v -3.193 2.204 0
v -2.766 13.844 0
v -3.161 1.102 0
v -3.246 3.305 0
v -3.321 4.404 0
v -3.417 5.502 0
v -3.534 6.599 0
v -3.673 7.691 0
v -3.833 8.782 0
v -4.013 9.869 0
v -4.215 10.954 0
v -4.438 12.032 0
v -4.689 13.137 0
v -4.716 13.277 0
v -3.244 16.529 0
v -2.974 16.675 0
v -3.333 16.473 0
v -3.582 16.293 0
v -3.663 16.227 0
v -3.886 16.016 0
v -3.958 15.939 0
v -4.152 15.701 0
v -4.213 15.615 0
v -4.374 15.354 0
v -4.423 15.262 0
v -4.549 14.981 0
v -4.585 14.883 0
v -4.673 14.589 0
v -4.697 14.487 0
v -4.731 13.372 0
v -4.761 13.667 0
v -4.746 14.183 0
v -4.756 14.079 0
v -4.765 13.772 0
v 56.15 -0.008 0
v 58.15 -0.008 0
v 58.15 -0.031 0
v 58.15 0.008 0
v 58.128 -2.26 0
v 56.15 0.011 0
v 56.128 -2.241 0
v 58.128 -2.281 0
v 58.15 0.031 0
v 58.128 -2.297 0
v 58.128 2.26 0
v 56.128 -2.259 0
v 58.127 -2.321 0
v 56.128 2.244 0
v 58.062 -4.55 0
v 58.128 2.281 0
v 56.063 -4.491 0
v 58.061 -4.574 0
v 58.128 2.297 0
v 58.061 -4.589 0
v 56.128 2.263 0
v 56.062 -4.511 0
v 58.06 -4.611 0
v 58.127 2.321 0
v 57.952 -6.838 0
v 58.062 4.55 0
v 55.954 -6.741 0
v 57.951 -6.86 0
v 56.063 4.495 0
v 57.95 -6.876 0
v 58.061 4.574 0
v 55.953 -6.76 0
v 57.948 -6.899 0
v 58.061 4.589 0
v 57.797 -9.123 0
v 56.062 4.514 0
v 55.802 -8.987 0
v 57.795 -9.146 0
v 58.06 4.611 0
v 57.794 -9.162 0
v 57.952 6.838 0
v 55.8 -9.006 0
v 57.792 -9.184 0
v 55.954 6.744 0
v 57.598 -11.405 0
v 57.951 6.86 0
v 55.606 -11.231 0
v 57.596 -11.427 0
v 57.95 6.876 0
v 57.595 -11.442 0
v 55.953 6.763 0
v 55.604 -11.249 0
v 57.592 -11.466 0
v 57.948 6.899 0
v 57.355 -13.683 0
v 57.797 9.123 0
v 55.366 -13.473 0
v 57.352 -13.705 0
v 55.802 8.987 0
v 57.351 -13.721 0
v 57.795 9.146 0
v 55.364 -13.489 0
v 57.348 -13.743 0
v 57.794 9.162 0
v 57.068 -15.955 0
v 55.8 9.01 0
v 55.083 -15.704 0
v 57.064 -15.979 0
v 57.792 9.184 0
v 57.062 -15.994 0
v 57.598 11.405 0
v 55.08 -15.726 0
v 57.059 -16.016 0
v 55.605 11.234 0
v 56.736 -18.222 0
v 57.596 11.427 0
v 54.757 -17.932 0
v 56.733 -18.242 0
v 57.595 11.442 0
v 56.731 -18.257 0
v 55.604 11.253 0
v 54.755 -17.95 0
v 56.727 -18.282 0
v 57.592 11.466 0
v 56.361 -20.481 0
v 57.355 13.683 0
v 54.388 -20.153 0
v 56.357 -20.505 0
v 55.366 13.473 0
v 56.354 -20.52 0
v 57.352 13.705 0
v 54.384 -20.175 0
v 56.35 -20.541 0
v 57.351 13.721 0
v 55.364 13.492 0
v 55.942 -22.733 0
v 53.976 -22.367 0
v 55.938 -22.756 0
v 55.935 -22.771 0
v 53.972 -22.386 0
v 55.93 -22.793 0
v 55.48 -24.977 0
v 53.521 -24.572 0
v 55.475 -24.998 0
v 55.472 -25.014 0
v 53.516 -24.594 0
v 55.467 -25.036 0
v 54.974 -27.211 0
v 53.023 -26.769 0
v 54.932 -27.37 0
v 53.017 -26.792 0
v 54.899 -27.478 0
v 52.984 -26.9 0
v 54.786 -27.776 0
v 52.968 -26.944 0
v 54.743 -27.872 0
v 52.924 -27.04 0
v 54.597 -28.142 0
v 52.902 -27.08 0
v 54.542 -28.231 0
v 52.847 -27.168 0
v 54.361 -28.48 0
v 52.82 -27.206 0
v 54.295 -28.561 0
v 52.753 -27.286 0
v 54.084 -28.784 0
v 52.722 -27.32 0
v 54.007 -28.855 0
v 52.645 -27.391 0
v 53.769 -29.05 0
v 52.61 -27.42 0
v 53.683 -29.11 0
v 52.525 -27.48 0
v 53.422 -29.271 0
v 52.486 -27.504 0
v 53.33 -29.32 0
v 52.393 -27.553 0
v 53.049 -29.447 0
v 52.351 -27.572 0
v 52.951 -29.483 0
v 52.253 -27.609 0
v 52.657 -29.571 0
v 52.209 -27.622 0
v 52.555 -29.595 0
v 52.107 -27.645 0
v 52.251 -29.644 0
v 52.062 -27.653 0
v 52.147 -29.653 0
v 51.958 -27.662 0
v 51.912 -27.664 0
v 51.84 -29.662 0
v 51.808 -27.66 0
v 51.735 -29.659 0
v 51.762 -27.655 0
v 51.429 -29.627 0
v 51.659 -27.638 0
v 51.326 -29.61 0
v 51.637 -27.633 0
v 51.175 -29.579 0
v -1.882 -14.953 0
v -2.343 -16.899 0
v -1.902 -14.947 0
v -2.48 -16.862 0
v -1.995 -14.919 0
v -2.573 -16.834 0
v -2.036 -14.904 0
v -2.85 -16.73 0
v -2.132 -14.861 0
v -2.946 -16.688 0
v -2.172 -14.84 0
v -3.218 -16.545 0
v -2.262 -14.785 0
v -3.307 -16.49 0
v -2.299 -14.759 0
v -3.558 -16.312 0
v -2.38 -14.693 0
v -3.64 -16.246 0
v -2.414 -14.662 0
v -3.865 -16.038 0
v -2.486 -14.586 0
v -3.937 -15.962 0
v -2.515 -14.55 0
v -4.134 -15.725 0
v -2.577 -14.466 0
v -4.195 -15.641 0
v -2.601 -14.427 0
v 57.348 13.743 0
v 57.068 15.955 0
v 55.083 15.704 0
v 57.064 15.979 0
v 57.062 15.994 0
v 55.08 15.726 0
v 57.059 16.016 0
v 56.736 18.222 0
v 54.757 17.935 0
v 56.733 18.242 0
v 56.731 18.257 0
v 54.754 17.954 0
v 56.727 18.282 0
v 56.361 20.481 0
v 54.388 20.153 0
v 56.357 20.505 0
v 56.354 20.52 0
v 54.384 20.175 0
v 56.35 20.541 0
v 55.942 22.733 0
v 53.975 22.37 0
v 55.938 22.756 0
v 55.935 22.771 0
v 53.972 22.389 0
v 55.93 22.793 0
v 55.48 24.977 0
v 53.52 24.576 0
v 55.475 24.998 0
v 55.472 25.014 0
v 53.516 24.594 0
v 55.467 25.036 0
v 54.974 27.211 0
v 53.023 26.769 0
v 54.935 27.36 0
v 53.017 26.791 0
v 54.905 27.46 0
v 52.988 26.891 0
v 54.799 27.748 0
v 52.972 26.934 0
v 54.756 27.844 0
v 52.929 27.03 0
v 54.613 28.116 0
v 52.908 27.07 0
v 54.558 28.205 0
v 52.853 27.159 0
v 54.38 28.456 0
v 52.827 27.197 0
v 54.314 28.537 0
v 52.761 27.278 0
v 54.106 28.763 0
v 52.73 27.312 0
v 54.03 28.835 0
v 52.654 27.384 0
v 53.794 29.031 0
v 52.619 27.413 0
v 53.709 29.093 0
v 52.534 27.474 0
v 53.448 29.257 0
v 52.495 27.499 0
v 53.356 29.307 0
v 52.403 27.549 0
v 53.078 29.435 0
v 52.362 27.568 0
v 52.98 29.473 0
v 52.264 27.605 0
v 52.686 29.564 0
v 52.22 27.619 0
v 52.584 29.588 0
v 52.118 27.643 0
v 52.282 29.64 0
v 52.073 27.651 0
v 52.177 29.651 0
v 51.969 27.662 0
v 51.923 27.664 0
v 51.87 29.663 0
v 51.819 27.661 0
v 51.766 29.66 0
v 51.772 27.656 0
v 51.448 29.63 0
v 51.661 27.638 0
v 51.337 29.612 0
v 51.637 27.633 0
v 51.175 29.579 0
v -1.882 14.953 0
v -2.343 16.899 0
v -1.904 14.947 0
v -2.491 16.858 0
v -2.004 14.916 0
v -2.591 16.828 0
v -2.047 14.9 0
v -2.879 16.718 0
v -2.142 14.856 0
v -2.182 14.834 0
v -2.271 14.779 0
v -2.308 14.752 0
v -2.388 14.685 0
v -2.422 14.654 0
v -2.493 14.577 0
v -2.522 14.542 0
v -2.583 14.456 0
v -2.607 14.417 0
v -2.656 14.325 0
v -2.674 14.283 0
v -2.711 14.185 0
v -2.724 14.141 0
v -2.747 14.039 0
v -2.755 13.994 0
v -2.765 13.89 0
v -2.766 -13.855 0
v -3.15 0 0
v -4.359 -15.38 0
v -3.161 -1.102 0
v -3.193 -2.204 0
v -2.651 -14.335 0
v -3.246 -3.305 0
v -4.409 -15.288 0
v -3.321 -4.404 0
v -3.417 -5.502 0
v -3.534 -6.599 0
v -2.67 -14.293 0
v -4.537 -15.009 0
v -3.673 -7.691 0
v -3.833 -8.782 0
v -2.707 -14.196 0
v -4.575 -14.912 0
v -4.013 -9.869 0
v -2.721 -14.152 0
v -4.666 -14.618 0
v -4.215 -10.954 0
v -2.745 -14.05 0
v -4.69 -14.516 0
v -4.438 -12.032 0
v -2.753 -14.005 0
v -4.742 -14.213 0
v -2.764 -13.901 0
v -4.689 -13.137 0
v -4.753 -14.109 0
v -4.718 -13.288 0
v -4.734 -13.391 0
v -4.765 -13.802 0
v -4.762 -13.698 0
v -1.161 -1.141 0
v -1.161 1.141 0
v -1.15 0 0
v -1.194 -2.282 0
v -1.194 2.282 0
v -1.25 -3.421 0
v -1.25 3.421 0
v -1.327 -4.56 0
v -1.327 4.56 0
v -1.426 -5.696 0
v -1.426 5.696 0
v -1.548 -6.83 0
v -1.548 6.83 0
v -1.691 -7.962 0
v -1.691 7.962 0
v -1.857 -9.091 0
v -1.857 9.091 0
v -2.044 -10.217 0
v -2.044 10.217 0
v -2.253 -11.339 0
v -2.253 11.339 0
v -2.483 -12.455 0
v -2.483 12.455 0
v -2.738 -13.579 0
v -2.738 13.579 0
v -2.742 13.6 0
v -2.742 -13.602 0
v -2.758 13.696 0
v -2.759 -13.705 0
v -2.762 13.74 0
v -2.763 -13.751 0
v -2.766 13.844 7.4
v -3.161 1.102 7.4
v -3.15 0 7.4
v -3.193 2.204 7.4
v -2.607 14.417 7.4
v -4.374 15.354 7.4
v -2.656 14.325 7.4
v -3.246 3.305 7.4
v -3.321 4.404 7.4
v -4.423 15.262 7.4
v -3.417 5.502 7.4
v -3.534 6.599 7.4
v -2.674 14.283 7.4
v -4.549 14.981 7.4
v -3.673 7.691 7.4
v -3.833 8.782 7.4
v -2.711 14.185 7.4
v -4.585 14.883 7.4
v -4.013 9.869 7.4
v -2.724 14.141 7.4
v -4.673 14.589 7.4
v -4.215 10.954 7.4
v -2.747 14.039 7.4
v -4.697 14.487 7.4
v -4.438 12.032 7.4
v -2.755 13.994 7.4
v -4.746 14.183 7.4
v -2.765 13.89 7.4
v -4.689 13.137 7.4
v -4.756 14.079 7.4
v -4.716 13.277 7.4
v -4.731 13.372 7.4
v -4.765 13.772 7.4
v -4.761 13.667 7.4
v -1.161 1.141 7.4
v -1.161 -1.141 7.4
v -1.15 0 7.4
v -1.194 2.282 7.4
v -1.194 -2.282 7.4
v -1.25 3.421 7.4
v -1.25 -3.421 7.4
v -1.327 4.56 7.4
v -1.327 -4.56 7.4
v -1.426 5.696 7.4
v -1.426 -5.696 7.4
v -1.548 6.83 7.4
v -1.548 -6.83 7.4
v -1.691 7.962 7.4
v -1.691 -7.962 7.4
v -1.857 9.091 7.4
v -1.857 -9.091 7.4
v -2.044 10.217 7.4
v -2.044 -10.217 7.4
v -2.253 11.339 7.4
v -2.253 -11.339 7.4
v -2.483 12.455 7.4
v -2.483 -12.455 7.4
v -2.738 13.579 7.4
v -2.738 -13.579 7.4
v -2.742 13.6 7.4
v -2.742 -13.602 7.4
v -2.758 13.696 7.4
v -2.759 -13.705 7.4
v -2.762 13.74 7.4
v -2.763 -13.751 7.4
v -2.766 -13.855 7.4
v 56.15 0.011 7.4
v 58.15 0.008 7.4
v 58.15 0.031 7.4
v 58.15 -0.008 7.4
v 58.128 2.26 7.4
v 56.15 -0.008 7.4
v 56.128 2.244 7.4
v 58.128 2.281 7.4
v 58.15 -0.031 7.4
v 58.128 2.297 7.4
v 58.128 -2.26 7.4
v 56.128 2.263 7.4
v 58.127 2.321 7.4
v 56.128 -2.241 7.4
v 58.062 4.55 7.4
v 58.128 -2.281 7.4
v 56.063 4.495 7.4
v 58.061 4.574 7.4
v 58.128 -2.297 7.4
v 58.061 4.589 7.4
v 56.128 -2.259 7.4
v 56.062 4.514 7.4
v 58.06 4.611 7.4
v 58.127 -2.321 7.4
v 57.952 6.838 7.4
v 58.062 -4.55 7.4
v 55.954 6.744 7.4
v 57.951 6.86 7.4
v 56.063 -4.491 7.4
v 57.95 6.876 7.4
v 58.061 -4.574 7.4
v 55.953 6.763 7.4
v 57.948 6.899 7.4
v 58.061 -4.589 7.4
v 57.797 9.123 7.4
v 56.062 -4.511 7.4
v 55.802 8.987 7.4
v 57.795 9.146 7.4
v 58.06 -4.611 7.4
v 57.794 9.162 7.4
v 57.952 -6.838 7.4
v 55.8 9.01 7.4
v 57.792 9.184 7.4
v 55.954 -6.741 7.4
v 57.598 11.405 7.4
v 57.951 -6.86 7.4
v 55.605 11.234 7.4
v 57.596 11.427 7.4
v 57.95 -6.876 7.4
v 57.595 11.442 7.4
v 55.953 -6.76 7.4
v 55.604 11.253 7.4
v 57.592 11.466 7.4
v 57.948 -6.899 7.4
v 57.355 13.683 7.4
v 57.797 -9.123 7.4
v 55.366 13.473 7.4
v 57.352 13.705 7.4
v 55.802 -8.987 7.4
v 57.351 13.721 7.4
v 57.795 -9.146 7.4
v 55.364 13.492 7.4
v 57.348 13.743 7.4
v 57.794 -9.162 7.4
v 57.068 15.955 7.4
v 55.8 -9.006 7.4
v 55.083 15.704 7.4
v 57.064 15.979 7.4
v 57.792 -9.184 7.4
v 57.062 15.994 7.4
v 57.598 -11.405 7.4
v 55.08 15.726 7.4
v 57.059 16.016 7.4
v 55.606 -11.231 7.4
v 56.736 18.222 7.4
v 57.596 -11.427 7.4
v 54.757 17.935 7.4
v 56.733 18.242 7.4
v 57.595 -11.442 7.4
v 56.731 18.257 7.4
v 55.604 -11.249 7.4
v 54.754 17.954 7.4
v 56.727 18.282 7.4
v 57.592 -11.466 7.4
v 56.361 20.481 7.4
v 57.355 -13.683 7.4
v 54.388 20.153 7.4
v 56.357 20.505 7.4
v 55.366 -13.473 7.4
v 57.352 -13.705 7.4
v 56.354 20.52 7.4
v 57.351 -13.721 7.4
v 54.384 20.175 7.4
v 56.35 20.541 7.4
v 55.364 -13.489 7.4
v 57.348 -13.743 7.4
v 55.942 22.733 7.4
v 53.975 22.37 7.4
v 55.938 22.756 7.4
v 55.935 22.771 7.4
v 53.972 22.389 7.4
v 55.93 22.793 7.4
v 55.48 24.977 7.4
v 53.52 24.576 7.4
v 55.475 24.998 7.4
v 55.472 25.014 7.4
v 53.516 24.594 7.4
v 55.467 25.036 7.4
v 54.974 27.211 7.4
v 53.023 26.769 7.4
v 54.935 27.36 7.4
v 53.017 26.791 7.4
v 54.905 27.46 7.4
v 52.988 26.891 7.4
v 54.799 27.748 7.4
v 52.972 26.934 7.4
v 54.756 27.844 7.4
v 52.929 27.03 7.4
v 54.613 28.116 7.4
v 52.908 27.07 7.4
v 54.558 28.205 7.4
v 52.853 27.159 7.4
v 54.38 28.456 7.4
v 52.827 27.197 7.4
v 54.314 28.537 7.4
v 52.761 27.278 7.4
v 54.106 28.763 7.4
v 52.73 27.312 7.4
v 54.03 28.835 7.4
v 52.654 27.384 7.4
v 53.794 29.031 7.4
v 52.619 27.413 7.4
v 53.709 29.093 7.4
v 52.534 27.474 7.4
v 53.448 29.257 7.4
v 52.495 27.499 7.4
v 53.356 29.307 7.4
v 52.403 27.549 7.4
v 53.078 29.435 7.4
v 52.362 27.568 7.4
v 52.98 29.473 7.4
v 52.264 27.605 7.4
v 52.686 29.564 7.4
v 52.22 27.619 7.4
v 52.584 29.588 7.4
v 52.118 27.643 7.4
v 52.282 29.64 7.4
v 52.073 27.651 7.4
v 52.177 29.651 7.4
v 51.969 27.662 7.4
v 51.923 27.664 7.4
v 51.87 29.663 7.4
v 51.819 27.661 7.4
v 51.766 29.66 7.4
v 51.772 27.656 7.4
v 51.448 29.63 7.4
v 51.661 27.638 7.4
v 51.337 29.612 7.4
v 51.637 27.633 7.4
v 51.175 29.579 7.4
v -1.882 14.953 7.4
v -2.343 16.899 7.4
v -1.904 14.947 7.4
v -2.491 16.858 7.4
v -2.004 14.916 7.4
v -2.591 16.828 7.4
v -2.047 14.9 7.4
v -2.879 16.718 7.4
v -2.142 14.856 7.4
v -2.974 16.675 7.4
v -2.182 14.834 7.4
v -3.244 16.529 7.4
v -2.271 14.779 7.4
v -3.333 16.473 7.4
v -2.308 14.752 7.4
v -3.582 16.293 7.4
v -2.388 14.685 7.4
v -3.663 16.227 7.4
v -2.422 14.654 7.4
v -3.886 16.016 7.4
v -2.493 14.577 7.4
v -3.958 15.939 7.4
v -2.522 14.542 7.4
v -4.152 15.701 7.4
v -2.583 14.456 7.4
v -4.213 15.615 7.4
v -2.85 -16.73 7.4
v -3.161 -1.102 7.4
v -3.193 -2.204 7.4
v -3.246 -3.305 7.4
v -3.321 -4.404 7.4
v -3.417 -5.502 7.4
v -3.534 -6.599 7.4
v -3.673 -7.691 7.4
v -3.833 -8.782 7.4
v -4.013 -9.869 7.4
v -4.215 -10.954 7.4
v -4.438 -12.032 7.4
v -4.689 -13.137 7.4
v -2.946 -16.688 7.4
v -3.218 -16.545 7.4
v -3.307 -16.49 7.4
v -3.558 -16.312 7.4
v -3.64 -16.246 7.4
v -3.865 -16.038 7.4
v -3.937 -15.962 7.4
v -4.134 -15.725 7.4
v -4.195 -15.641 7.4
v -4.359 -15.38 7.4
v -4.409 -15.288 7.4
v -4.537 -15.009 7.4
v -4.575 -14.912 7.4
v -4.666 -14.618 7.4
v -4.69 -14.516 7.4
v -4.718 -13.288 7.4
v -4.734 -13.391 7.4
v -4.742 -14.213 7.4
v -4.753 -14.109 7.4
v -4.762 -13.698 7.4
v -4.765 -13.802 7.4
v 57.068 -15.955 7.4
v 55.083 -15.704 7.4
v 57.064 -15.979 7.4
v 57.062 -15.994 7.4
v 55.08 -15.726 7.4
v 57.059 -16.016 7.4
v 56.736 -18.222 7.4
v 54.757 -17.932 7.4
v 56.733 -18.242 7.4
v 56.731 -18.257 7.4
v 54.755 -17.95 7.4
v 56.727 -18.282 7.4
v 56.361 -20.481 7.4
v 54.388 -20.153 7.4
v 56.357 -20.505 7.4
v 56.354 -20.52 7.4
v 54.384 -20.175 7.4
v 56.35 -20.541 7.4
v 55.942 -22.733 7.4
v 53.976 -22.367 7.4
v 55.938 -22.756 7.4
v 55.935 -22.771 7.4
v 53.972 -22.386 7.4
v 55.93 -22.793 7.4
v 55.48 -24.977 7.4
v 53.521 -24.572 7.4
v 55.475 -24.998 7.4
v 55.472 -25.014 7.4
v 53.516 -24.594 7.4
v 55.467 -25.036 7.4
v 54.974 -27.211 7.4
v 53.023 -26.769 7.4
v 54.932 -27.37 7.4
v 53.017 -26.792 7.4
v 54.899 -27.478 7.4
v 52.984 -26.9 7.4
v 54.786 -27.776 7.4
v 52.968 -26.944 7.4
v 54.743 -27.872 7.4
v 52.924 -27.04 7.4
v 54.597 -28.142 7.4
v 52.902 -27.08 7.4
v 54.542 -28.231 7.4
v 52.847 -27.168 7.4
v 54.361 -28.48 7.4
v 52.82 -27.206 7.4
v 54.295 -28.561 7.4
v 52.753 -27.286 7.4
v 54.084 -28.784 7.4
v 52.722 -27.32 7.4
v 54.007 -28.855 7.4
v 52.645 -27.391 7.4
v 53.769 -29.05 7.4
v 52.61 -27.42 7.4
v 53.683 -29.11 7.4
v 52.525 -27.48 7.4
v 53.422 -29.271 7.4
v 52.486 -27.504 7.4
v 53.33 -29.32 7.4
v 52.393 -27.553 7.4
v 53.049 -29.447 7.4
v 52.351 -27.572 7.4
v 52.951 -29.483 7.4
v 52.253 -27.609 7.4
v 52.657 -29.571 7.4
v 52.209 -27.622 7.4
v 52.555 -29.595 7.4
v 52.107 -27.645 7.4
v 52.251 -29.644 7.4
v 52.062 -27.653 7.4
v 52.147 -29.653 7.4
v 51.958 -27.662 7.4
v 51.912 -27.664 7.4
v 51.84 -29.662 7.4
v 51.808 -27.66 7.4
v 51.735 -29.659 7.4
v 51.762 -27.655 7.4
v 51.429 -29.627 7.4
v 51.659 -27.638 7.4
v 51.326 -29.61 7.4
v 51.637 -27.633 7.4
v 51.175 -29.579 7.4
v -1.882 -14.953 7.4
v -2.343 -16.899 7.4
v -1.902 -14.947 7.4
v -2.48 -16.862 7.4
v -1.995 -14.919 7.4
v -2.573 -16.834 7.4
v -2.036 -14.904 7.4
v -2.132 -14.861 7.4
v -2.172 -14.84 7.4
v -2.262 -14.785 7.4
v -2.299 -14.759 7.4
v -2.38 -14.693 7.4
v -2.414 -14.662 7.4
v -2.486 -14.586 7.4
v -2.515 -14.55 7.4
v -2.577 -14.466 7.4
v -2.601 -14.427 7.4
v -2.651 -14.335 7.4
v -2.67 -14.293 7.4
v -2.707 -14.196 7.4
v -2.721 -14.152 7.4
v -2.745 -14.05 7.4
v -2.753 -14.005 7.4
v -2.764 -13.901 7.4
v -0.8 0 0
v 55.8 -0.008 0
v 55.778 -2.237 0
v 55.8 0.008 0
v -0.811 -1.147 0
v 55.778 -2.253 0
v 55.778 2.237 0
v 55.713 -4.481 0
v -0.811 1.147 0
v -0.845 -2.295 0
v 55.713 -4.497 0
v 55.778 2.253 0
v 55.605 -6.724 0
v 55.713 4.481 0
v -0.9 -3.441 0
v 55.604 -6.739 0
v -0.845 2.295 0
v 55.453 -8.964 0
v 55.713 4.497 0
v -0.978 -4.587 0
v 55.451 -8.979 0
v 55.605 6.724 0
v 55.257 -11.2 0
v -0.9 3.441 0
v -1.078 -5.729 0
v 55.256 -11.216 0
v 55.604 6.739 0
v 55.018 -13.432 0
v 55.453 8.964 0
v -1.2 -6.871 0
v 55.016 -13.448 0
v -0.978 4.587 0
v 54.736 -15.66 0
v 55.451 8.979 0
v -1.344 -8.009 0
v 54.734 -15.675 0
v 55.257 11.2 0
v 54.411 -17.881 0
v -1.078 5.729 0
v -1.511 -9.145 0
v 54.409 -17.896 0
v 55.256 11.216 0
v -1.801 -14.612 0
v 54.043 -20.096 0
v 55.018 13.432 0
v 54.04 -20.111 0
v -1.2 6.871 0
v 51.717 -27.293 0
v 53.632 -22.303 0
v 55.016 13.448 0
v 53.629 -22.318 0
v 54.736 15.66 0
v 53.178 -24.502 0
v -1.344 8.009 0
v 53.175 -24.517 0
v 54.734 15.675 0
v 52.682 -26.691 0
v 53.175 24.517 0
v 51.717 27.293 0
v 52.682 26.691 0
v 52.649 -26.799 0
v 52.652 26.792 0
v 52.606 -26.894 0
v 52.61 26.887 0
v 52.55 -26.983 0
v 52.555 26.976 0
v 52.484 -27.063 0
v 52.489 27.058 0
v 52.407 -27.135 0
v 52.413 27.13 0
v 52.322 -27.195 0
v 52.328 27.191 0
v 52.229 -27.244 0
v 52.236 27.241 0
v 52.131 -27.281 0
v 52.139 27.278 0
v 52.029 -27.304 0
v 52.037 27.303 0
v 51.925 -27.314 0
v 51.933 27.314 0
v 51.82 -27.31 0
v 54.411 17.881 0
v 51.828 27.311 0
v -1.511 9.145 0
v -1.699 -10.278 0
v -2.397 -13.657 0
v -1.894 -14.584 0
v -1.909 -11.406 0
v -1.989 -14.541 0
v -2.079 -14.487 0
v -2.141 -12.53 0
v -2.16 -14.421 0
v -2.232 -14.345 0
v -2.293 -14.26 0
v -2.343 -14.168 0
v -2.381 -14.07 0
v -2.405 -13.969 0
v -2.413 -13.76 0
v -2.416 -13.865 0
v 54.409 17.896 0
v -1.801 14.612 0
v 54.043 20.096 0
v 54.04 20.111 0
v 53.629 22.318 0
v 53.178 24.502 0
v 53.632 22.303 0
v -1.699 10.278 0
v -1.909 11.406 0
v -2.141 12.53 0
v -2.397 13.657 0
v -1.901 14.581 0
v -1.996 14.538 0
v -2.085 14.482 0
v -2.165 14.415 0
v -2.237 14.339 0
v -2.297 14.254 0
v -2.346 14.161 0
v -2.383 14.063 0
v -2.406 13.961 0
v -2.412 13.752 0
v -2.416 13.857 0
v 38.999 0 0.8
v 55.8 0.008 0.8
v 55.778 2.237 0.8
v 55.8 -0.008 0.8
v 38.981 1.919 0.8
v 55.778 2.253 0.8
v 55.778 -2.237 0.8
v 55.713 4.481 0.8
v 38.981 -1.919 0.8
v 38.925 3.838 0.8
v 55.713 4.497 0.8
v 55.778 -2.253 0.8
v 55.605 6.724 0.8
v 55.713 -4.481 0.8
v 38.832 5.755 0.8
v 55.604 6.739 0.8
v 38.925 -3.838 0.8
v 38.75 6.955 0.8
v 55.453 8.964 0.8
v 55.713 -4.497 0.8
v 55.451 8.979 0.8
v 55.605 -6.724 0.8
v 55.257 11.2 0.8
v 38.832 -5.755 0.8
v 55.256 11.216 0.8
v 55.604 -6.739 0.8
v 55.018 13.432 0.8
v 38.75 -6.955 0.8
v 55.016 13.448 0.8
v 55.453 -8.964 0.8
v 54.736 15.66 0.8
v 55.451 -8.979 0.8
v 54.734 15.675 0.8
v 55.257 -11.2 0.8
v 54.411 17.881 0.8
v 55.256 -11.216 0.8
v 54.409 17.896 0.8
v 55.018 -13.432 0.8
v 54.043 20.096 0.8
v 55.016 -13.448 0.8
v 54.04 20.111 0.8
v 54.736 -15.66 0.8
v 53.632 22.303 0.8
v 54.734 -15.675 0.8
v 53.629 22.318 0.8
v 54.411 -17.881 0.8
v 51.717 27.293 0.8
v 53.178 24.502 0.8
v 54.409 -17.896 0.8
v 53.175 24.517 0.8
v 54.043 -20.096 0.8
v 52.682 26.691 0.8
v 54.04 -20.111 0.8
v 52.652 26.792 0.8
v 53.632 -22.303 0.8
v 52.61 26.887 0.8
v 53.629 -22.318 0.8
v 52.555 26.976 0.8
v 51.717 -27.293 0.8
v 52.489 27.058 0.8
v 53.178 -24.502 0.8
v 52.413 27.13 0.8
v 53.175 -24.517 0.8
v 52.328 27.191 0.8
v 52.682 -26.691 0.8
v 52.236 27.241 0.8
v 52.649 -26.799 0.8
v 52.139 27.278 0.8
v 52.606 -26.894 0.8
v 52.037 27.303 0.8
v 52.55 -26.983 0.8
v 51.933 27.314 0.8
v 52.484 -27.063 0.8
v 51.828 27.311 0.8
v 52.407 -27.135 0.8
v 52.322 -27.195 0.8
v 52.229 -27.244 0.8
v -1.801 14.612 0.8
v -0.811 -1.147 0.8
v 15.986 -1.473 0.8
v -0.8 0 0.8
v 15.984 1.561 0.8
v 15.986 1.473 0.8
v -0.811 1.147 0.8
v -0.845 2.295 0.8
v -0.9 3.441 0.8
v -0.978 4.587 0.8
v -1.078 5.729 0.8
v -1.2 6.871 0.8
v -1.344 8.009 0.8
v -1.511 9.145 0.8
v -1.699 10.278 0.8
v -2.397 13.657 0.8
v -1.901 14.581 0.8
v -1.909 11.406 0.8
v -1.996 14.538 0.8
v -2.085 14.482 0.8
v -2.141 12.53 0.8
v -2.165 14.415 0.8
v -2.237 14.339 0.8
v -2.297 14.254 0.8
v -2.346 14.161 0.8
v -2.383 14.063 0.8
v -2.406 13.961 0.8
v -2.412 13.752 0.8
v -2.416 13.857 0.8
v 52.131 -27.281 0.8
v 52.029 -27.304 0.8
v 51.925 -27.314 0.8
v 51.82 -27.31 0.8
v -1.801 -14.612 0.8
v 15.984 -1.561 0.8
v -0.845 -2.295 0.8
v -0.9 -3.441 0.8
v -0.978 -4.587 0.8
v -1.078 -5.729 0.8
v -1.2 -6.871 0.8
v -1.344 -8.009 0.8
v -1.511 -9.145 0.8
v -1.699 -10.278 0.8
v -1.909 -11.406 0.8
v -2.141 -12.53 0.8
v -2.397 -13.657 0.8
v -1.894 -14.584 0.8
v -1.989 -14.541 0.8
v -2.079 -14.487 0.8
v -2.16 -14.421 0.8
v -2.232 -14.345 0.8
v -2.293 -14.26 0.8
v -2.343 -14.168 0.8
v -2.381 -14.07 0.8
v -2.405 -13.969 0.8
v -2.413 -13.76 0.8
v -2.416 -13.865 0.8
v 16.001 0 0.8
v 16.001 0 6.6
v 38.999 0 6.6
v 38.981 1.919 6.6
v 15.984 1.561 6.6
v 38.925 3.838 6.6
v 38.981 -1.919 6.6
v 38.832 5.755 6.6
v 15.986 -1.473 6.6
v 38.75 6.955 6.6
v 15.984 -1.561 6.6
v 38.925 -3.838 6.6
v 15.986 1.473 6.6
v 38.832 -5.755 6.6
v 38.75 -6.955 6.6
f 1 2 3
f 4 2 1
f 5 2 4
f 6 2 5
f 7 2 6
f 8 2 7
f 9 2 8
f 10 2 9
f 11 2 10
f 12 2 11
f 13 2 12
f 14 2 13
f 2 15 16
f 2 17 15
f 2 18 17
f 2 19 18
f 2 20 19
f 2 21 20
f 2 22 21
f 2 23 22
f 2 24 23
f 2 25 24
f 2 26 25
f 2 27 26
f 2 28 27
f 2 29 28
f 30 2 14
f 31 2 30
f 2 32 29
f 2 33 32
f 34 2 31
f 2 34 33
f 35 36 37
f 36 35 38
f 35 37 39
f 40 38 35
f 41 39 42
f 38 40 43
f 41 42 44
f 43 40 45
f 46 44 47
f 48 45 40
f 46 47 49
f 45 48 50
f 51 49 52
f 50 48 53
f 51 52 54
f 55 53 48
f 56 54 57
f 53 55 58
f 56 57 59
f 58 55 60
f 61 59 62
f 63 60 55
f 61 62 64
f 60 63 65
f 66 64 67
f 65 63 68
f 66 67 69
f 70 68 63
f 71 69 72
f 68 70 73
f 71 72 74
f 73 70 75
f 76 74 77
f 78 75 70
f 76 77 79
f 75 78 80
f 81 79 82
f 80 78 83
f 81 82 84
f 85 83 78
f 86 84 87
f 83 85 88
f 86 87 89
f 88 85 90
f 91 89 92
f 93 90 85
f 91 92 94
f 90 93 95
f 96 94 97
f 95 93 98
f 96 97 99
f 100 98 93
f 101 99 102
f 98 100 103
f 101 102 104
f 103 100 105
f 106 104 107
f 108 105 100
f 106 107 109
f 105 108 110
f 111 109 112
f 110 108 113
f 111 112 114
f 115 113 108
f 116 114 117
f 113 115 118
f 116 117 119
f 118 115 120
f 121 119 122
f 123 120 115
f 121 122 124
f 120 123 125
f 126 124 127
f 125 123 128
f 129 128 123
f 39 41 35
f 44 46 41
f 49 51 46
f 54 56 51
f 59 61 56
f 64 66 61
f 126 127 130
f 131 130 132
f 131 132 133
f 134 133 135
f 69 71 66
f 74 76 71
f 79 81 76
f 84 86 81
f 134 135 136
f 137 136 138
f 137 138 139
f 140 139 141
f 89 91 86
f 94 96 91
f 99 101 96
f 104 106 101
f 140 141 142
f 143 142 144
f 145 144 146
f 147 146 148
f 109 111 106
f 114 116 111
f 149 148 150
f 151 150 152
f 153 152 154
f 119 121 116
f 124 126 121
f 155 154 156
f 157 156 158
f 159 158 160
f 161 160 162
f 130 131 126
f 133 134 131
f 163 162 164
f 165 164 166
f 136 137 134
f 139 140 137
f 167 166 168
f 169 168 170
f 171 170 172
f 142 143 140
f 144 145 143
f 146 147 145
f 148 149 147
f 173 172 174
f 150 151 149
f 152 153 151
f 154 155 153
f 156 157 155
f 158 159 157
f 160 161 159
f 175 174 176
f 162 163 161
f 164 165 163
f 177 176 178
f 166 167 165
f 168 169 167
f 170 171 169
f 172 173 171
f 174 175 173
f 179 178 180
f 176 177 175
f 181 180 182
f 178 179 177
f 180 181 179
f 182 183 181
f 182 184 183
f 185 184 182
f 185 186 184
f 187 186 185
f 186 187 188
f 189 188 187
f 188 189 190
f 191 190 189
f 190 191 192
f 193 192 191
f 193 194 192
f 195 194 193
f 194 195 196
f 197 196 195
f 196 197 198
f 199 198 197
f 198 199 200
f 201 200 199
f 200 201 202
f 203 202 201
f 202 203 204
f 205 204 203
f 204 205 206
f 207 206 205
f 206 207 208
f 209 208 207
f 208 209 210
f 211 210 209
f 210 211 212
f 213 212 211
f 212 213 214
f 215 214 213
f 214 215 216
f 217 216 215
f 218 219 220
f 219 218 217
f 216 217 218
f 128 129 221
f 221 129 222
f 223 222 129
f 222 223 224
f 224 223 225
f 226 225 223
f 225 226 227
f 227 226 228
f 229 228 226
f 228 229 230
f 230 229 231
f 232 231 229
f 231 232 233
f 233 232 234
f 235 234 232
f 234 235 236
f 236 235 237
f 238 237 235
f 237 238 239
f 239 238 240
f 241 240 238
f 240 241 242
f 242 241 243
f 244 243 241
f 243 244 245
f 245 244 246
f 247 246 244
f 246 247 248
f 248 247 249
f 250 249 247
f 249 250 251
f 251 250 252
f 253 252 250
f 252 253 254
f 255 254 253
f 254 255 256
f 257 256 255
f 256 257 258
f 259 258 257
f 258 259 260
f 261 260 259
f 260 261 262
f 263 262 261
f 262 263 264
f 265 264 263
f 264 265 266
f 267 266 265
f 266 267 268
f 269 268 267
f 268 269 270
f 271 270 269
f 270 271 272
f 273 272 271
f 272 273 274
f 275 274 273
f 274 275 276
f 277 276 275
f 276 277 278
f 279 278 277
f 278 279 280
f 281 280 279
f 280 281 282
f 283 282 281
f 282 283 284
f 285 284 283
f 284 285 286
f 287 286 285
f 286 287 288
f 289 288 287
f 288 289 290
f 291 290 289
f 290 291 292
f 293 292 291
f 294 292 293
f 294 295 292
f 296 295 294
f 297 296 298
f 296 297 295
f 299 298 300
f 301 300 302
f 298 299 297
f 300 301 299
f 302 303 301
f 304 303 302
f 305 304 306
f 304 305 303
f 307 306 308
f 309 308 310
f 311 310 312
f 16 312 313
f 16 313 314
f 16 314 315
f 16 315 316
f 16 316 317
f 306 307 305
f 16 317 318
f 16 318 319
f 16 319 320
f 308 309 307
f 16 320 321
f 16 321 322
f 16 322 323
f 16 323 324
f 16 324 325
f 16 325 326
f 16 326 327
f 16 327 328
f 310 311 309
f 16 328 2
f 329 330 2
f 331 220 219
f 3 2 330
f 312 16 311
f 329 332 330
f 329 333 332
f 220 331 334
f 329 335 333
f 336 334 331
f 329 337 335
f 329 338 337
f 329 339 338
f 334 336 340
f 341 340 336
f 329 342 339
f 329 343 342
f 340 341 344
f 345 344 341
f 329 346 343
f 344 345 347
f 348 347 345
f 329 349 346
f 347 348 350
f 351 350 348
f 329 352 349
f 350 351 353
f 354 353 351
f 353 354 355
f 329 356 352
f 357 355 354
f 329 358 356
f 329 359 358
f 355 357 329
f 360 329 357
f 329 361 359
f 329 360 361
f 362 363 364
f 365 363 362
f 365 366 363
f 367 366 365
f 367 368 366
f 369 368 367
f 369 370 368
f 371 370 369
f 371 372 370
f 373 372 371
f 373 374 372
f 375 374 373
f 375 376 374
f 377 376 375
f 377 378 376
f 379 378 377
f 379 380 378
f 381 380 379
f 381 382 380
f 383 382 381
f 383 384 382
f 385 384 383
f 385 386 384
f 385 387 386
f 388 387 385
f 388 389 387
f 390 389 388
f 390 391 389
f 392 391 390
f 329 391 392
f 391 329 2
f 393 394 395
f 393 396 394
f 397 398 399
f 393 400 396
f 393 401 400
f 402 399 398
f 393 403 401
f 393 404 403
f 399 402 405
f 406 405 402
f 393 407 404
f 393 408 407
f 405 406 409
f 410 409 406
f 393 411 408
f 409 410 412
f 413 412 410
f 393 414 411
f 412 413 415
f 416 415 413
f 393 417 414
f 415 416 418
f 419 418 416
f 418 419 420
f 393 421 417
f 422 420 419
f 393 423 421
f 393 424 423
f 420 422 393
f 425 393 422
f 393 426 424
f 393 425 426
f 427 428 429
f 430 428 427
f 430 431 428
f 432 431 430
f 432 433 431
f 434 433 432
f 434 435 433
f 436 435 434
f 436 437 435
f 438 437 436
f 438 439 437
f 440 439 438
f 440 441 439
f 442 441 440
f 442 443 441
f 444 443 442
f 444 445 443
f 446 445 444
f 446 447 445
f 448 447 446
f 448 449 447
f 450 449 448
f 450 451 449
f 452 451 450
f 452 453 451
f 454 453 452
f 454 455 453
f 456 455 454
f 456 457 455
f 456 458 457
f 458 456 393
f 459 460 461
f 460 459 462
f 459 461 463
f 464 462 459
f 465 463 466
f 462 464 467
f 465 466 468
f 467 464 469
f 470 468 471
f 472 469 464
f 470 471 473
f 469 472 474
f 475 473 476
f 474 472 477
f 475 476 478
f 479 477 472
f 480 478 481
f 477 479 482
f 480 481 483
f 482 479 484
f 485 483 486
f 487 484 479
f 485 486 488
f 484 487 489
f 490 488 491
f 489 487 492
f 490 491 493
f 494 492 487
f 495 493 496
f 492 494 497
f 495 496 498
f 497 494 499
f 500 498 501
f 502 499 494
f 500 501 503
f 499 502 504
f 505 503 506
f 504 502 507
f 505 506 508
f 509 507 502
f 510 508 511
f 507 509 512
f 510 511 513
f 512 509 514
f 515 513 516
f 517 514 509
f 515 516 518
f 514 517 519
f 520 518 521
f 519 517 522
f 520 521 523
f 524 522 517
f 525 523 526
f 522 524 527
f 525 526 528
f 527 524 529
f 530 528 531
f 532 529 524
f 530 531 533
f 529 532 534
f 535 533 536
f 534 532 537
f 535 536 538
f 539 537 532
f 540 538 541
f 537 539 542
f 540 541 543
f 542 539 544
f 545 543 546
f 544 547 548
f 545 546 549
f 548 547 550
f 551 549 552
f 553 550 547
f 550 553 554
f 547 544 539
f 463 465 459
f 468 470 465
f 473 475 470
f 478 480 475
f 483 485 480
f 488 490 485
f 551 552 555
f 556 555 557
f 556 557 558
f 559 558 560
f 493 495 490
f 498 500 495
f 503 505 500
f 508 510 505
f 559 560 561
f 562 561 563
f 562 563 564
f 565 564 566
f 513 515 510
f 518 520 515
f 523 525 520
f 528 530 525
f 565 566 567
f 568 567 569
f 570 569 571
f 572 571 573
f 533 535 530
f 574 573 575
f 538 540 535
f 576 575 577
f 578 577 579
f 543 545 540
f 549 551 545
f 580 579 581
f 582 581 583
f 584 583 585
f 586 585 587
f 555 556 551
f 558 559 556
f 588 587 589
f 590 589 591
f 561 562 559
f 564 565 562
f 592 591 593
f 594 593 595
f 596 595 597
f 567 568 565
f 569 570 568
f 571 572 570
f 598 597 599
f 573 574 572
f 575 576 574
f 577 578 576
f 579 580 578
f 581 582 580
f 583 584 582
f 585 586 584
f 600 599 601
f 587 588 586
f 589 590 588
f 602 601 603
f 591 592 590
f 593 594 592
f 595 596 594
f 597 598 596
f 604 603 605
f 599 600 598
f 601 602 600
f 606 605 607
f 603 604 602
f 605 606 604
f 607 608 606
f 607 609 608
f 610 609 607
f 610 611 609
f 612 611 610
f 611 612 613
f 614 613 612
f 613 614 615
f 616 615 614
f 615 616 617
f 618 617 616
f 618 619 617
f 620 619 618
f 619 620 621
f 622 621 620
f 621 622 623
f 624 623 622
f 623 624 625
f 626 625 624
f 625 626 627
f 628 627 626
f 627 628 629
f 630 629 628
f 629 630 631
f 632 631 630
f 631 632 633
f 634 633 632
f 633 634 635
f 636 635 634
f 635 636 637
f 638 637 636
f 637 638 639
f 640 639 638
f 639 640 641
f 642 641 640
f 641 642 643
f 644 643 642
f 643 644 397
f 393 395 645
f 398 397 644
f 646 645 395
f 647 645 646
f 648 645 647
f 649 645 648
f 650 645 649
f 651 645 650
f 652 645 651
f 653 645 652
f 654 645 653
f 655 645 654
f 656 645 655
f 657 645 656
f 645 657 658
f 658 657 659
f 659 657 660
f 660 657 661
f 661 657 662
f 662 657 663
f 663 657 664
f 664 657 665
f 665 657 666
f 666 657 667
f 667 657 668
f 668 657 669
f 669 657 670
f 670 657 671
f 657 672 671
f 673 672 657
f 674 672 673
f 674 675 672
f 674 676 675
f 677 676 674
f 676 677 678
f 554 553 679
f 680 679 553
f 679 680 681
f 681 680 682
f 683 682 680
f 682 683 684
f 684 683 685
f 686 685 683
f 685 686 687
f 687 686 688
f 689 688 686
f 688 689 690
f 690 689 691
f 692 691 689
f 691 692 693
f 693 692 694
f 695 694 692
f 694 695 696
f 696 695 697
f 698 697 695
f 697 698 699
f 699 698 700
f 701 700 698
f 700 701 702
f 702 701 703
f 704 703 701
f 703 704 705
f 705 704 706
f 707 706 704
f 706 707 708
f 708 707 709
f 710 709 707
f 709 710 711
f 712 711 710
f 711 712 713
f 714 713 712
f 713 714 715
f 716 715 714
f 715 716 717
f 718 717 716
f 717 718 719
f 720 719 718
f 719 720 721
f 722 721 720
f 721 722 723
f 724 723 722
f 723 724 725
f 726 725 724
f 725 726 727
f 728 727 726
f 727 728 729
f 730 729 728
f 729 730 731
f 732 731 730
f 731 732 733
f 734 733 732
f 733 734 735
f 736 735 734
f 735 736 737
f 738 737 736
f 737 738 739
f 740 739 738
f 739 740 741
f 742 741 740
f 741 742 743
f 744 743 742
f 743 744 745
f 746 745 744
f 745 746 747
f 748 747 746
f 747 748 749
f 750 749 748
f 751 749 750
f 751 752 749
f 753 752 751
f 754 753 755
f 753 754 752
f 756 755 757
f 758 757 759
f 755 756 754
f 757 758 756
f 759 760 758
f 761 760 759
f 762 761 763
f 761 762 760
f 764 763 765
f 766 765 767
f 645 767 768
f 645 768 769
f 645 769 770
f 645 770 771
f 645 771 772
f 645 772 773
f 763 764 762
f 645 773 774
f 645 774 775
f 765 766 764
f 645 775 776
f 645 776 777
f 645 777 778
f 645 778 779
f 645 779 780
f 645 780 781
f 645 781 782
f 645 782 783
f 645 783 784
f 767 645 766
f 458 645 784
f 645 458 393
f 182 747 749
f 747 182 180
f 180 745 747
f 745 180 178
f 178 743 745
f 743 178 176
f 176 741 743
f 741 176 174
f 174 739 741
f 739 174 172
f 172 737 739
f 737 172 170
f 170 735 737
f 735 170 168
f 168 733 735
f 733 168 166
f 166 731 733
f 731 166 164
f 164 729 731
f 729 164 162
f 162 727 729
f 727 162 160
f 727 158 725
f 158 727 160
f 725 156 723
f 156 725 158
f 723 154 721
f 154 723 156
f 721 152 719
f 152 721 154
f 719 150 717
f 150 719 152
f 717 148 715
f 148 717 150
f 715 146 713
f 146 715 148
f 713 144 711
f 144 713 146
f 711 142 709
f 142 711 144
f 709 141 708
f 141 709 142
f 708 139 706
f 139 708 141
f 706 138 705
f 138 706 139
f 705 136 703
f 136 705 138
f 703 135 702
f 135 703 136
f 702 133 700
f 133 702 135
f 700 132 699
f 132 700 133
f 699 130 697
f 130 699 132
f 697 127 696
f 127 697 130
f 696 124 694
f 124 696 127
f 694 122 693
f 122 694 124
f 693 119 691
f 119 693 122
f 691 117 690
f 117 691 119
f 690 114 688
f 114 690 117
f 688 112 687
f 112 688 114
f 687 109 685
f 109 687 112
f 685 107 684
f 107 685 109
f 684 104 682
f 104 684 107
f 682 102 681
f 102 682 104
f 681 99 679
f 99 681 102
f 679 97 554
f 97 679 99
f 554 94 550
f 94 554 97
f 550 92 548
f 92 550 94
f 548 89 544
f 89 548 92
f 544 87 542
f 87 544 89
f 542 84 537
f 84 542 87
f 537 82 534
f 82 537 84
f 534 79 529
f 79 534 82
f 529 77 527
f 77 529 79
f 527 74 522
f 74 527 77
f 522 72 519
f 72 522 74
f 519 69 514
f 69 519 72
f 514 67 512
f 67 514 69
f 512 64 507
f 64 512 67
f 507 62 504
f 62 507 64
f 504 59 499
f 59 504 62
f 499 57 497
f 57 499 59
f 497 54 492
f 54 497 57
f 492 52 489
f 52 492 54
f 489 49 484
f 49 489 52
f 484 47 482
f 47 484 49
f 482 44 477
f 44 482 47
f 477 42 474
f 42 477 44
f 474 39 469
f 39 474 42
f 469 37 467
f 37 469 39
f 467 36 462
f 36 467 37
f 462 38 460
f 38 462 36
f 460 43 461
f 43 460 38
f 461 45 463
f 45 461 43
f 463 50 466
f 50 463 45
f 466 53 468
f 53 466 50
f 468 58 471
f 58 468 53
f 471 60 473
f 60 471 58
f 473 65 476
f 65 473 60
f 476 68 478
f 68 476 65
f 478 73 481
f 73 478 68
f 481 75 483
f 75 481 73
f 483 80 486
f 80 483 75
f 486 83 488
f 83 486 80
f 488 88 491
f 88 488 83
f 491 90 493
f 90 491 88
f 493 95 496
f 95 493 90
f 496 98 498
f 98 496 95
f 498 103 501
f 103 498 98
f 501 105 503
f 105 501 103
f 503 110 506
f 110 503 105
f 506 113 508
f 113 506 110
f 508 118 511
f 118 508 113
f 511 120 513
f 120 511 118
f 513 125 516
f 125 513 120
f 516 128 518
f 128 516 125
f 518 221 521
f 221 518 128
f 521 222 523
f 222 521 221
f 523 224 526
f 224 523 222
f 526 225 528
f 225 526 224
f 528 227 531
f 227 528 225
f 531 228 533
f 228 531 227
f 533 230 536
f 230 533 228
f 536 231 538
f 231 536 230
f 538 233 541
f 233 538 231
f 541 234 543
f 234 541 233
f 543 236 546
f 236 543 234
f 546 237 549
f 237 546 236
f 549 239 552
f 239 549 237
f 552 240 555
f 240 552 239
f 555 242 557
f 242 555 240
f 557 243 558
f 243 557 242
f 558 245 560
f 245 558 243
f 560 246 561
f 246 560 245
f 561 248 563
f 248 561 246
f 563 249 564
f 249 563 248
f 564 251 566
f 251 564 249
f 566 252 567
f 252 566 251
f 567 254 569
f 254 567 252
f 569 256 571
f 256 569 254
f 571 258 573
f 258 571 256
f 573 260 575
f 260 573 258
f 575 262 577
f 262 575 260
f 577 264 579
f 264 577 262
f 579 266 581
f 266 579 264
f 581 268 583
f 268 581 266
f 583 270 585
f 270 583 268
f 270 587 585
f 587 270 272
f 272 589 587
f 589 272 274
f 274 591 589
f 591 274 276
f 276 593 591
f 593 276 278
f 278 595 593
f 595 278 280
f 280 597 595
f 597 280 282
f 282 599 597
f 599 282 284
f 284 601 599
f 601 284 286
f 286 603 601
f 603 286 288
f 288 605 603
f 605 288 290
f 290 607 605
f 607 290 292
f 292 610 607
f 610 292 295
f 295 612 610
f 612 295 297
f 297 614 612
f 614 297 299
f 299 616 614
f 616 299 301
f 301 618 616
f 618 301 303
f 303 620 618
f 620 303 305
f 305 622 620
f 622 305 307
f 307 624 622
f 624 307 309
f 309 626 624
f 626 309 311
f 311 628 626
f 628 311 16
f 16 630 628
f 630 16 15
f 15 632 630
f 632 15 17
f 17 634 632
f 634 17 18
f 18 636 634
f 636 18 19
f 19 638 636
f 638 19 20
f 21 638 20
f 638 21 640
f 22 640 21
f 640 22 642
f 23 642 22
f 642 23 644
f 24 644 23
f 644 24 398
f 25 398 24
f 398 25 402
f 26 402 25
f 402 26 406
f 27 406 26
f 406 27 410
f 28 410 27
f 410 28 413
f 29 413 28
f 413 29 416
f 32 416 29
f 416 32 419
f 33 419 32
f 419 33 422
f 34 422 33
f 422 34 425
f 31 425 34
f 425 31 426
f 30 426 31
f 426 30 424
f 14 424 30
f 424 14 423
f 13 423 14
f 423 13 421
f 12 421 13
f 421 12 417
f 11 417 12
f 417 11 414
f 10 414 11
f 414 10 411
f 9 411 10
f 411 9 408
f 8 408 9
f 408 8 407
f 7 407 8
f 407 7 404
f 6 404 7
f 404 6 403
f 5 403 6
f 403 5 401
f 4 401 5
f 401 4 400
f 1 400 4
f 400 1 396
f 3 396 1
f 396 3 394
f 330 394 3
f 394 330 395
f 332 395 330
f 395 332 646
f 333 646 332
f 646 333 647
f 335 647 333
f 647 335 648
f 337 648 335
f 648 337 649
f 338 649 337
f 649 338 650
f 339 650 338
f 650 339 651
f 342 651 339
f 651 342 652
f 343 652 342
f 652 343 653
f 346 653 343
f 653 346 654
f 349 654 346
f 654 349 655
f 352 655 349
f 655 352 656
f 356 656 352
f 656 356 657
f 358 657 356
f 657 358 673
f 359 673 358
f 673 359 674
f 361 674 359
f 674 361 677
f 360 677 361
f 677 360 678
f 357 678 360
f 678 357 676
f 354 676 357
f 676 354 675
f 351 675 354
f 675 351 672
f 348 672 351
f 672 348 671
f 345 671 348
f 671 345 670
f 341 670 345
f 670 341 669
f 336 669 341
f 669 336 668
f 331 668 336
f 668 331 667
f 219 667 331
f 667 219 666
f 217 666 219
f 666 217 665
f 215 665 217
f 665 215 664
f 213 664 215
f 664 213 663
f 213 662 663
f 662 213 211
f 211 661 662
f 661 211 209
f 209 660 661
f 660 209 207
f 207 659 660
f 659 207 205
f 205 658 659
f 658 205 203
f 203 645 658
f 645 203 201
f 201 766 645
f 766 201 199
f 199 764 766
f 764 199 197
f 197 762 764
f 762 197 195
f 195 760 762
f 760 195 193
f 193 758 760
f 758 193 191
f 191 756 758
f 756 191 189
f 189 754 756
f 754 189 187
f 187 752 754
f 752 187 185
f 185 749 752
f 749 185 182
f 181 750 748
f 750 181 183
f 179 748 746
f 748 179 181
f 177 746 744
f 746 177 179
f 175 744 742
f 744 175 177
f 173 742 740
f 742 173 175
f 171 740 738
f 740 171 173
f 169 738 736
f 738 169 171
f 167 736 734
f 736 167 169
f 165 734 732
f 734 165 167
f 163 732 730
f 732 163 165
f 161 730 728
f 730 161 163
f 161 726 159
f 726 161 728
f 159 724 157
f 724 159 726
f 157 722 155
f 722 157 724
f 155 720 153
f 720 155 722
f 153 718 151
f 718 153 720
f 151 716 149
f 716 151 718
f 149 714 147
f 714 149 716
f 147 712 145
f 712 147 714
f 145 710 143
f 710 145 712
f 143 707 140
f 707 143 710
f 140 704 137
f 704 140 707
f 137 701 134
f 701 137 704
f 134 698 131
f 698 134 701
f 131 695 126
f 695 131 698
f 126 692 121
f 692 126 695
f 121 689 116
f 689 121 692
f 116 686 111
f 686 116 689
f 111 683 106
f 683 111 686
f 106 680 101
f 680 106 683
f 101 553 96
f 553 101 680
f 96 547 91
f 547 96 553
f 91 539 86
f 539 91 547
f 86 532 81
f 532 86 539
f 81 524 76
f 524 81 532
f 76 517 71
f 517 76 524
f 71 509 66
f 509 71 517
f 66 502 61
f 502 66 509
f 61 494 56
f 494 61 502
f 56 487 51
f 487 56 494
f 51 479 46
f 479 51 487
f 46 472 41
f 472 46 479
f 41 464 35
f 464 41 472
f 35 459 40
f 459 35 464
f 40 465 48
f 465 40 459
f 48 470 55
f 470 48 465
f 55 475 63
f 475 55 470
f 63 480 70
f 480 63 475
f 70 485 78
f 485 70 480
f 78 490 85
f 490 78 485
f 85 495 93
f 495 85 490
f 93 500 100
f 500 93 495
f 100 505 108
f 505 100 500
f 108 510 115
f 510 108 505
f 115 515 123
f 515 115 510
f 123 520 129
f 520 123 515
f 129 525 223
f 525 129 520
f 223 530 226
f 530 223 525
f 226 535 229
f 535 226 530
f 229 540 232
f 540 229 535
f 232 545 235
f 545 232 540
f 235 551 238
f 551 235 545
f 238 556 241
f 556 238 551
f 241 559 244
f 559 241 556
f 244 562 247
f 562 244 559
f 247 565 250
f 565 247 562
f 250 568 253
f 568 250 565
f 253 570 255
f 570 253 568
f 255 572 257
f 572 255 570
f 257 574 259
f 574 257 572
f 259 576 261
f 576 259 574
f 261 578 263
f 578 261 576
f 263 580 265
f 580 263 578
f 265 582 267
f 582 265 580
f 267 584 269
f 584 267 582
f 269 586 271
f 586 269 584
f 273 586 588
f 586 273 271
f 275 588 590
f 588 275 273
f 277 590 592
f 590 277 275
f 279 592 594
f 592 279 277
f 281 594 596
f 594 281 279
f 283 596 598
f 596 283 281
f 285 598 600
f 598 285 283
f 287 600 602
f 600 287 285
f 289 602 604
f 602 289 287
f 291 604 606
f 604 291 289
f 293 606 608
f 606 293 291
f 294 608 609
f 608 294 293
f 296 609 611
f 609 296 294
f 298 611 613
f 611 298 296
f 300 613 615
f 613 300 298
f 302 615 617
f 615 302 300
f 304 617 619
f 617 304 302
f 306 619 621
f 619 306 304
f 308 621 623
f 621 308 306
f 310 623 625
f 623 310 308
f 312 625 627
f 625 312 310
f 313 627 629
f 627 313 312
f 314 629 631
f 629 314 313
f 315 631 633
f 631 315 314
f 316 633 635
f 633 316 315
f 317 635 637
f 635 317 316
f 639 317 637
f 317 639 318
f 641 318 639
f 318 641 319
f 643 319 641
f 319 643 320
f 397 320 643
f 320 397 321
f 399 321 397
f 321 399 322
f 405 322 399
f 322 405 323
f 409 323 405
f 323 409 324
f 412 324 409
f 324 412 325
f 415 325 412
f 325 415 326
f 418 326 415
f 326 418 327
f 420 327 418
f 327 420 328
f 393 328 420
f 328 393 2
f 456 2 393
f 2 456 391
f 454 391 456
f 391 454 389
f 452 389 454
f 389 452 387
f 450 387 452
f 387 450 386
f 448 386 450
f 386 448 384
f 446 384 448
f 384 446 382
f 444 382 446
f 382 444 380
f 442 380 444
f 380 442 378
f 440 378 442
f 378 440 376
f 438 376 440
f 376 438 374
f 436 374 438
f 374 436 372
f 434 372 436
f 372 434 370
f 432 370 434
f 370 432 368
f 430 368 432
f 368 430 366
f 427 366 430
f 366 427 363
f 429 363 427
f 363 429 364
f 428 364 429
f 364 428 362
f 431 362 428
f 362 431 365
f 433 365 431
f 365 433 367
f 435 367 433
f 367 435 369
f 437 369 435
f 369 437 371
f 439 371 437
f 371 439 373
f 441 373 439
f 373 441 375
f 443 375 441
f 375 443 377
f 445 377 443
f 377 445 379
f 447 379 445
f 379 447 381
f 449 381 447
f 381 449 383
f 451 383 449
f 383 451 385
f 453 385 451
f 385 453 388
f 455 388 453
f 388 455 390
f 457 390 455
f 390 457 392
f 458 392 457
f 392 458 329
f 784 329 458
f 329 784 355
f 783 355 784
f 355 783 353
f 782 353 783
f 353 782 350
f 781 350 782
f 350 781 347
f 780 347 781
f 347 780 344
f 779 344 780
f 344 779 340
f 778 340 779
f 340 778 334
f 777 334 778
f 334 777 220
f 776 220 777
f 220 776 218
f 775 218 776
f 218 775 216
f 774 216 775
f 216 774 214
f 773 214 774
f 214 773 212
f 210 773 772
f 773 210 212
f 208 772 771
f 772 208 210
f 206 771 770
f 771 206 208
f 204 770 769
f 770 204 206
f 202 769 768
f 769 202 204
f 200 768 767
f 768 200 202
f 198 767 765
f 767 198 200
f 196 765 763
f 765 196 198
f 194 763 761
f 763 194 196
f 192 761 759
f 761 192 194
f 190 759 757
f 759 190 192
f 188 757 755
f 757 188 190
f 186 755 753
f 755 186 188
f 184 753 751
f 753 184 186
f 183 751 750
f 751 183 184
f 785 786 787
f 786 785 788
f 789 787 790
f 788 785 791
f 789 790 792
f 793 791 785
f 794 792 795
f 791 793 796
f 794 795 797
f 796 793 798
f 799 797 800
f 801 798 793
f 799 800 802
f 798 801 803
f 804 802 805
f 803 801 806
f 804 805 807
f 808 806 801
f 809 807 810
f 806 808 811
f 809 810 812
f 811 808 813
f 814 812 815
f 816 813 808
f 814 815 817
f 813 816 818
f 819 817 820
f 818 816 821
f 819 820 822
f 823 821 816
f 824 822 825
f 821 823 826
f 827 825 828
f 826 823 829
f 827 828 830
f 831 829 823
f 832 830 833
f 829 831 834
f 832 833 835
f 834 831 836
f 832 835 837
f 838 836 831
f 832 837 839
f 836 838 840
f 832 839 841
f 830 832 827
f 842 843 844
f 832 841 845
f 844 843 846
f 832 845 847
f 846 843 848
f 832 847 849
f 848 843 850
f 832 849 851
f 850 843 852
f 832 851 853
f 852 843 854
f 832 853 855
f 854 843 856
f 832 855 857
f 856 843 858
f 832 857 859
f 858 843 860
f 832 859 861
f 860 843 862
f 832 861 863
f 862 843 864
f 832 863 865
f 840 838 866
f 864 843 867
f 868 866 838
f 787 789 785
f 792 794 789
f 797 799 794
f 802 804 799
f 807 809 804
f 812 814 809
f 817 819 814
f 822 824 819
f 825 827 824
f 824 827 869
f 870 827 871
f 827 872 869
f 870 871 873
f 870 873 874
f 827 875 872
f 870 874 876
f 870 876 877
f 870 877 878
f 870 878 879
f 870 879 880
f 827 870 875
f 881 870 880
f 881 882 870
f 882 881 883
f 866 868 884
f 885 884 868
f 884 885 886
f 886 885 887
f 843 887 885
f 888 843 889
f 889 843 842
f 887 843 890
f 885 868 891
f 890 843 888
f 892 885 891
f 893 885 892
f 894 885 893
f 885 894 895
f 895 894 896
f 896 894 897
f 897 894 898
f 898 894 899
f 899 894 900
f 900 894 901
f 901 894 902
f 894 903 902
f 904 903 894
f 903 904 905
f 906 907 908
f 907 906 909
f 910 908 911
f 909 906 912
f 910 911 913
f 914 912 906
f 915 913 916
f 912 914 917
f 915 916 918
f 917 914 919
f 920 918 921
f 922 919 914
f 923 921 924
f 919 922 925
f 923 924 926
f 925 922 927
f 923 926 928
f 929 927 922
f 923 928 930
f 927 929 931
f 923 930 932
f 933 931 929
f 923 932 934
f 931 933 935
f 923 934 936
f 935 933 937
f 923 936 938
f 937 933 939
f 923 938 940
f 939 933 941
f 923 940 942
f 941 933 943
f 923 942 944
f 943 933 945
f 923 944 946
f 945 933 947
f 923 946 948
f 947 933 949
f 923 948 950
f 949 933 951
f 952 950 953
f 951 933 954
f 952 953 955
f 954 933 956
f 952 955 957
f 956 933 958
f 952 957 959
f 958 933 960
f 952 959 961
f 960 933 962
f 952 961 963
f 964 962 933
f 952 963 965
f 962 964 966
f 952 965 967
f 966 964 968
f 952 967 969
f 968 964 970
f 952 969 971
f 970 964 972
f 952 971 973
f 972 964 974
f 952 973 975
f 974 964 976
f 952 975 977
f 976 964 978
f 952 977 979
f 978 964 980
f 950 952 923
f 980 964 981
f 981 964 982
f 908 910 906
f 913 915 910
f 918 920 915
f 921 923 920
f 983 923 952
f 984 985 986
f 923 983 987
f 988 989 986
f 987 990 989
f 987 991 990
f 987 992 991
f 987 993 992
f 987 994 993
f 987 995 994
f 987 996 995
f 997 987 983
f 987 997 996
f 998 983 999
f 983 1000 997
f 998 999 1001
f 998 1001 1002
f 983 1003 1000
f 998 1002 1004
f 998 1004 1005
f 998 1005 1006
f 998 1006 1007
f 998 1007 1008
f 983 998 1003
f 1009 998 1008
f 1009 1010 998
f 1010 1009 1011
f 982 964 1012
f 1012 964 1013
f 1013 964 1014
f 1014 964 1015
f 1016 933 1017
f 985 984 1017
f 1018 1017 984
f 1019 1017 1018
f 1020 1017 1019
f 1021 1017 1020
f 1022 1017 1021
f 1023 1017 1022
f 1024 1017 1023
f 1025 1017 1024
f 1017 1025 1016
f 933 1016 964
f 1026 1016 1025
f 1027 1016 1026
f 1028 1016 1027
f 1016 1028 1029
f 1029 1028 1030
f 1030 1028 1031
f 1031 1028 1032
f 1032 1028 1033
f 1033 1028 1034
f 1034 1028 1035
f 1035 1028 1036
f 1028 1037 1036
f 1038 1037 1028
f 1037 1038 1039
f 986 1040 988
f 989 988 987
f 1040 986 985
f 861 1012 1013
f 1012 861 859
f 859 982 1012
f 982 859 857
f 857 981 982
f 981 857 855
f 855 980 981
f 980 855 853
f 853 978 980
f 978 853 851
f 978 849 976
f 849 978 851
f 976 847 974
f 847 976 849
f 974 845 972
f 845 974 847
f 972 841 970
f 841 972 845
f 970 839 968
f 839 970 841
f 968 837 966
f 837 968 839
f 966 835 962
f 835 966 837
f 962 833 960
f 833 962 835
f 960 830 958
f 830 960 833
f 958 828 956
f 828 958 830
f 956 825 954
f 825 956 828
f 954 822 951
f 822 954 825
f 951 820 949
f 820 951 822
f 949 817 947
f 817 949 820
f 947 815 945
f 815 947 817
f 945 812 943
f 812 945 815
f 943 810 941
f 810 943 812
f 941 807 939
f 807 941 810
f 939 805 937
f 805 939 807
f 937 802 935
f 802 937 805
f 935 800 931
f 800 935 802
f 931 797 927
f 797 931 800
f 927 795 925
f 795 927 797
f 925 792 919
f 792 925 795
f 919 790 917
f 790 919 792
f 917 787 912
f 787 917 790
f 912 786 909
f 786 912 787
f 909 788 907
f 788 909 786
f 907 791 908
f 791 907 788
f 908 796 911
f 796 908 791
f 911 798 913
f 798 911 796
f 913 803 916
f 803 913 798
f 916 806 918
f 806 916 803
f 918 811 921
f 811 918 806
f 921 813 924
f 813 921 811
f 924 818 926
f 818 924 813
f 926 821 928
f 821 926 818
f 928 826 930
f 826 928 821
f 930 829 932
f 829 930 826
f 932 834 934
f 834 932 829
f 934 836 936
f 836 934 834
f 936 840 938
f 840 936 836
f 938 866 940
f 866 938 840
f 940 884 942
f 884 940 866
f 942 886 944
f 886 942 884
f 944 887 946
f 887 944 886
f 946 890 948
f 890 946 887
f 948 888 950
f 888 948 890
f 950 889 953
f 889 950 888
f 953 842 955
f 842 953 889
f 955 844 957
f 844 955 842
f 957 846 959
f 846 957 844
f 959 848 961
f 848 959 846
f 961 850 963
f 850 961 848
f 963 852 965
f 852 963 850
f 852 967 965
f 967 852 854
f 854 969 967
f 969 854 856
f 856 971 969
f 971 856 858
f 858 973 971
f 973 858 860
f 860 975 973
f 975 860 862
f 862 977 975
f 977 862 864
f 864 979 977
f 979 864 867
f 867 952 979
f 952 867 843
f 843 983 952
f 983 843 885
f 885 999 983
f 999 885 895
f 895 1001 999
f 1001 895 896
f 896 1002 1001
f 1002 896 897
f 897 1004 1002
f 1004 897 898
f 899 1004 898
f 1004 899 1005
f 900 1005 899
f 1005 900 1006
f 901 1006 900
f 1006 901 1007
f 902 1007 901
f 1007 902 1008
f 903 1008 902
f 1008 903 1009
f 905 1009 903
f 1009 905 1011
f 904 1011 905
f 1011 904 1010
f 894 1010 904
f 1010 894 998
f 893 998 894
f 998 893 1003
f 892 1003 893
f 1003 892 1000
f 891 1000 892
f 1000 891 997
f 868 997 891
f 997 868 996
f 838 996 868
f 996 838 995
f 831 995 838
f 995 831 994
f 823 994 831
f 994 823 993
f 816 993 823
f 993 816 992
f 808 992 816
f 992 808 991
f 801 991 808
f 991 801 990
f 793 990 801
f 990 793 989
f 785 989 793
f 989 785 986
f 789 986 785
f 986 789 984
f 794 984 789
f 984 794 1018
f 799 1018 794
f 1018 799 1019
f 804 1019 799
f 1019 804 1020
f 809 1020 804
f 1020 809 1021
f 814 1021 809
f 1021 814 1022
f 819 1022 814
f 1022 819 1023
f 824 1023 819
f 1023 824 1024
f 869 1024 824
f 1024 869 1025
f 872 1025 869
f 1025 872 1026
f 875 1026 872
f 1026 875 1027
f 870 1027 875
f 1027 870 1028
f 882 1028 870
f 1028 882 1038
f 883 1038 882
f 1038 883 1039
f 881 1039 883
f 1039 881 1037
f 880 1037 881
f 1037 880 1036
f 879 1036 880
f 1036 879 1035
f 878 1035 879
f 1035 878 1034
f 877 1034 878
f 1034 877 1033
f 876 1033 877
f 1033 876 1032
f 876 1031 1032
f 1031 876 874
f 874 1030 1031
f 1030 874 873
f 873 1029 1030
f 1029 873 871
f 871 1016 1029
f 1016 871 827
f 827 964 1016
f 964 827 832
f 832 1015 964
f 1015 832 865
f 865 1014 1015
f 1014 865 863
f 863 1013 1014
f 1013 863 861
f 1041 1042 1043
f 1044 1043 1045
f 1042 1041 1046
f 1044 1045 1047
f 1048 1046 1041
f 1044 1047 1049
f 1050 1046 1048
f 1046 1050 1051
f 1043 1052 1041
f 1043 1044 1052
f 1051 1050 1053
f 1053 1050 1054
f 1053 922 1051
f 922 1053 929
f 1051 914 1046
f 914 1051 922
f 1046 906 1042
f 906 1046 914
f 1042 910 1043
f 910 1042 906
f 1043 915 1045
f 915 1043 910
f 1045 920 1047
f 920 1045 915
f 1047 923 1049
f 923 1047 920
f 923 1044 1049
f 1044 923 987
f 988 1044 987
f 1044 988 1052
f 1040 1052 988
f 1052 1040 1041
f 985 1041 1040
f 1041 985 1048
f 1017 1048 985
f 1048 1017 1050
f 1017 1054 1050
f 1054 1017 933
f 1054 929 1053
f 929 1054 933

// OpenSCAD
// Gen-DC — fit coupon (bay part): O20/O5 THROUGH pockets at carrier thickness (test on a steel offcut), 608 seat,
// D-flat bore, gap shim, and one bobbin-bay slice (bobbin footprint + bay_clear) to test former fit.
include <parameters.scad>;
$fn = 48;
// D-flat keyed bore: flat faces +X (angle 0 = magnet pocket 0 = index notch)
module dflat_bore(h) {
    intersection() {
        cylinder(d=shaft_bore, h=h);
        translate([-shaft_bore, -shaft_bore, 0]) cube([shaft_bore + dflat_x, 2*shaft_bore, h]);
    }
}
module sector_2d(r_in, r_out, ang) {
    polygon([
        for (a = [-ang/2 : ang/24 : ang/2]) [r_in*cos(a), r_in*sin(a)],
        for (a = [ang/2 : -ang/24 : -ang/2]) [r_out*cos(a), r_out*sin(a)]
    ]);
}
module footprint_2d() { offset(r=wall) sector_2d(coil_id_r, coil_od_r, span_deg); }
module hub_2d()       { offset(delta=-coil_core_inset) sector_2d(coil_id_r, coil_od_r, span_deg); }

// bay slice at FULL stator thickness with one bobbin BASE printed IN PLACE inside it (bay_clear gap): this is the
// print-in-place test for the one-plate stator. After printing, the base must pop out with finger pressure; if it is fused,
// print coil_former.stl separately (print-packs/parts/) instead of using the in-place bases.
translate([-coil_id_r, 0, 0]) {
    difference() {
        linear_extrude(stator_thick) offset(r=bay_clear + 2) footprint_2d();
        translate([0, 0, -0.1]) linear_extrude(stator_thick + 0.2) offset(r=bay_clear) footprint_2d();
    }
    union() {
        linear_extrude(flange_t) footprint_2d();
        translate([0, 0, flange_t - 0.01]) linear_extrude(former_web + 0.01) hub_2d();
    }
}
